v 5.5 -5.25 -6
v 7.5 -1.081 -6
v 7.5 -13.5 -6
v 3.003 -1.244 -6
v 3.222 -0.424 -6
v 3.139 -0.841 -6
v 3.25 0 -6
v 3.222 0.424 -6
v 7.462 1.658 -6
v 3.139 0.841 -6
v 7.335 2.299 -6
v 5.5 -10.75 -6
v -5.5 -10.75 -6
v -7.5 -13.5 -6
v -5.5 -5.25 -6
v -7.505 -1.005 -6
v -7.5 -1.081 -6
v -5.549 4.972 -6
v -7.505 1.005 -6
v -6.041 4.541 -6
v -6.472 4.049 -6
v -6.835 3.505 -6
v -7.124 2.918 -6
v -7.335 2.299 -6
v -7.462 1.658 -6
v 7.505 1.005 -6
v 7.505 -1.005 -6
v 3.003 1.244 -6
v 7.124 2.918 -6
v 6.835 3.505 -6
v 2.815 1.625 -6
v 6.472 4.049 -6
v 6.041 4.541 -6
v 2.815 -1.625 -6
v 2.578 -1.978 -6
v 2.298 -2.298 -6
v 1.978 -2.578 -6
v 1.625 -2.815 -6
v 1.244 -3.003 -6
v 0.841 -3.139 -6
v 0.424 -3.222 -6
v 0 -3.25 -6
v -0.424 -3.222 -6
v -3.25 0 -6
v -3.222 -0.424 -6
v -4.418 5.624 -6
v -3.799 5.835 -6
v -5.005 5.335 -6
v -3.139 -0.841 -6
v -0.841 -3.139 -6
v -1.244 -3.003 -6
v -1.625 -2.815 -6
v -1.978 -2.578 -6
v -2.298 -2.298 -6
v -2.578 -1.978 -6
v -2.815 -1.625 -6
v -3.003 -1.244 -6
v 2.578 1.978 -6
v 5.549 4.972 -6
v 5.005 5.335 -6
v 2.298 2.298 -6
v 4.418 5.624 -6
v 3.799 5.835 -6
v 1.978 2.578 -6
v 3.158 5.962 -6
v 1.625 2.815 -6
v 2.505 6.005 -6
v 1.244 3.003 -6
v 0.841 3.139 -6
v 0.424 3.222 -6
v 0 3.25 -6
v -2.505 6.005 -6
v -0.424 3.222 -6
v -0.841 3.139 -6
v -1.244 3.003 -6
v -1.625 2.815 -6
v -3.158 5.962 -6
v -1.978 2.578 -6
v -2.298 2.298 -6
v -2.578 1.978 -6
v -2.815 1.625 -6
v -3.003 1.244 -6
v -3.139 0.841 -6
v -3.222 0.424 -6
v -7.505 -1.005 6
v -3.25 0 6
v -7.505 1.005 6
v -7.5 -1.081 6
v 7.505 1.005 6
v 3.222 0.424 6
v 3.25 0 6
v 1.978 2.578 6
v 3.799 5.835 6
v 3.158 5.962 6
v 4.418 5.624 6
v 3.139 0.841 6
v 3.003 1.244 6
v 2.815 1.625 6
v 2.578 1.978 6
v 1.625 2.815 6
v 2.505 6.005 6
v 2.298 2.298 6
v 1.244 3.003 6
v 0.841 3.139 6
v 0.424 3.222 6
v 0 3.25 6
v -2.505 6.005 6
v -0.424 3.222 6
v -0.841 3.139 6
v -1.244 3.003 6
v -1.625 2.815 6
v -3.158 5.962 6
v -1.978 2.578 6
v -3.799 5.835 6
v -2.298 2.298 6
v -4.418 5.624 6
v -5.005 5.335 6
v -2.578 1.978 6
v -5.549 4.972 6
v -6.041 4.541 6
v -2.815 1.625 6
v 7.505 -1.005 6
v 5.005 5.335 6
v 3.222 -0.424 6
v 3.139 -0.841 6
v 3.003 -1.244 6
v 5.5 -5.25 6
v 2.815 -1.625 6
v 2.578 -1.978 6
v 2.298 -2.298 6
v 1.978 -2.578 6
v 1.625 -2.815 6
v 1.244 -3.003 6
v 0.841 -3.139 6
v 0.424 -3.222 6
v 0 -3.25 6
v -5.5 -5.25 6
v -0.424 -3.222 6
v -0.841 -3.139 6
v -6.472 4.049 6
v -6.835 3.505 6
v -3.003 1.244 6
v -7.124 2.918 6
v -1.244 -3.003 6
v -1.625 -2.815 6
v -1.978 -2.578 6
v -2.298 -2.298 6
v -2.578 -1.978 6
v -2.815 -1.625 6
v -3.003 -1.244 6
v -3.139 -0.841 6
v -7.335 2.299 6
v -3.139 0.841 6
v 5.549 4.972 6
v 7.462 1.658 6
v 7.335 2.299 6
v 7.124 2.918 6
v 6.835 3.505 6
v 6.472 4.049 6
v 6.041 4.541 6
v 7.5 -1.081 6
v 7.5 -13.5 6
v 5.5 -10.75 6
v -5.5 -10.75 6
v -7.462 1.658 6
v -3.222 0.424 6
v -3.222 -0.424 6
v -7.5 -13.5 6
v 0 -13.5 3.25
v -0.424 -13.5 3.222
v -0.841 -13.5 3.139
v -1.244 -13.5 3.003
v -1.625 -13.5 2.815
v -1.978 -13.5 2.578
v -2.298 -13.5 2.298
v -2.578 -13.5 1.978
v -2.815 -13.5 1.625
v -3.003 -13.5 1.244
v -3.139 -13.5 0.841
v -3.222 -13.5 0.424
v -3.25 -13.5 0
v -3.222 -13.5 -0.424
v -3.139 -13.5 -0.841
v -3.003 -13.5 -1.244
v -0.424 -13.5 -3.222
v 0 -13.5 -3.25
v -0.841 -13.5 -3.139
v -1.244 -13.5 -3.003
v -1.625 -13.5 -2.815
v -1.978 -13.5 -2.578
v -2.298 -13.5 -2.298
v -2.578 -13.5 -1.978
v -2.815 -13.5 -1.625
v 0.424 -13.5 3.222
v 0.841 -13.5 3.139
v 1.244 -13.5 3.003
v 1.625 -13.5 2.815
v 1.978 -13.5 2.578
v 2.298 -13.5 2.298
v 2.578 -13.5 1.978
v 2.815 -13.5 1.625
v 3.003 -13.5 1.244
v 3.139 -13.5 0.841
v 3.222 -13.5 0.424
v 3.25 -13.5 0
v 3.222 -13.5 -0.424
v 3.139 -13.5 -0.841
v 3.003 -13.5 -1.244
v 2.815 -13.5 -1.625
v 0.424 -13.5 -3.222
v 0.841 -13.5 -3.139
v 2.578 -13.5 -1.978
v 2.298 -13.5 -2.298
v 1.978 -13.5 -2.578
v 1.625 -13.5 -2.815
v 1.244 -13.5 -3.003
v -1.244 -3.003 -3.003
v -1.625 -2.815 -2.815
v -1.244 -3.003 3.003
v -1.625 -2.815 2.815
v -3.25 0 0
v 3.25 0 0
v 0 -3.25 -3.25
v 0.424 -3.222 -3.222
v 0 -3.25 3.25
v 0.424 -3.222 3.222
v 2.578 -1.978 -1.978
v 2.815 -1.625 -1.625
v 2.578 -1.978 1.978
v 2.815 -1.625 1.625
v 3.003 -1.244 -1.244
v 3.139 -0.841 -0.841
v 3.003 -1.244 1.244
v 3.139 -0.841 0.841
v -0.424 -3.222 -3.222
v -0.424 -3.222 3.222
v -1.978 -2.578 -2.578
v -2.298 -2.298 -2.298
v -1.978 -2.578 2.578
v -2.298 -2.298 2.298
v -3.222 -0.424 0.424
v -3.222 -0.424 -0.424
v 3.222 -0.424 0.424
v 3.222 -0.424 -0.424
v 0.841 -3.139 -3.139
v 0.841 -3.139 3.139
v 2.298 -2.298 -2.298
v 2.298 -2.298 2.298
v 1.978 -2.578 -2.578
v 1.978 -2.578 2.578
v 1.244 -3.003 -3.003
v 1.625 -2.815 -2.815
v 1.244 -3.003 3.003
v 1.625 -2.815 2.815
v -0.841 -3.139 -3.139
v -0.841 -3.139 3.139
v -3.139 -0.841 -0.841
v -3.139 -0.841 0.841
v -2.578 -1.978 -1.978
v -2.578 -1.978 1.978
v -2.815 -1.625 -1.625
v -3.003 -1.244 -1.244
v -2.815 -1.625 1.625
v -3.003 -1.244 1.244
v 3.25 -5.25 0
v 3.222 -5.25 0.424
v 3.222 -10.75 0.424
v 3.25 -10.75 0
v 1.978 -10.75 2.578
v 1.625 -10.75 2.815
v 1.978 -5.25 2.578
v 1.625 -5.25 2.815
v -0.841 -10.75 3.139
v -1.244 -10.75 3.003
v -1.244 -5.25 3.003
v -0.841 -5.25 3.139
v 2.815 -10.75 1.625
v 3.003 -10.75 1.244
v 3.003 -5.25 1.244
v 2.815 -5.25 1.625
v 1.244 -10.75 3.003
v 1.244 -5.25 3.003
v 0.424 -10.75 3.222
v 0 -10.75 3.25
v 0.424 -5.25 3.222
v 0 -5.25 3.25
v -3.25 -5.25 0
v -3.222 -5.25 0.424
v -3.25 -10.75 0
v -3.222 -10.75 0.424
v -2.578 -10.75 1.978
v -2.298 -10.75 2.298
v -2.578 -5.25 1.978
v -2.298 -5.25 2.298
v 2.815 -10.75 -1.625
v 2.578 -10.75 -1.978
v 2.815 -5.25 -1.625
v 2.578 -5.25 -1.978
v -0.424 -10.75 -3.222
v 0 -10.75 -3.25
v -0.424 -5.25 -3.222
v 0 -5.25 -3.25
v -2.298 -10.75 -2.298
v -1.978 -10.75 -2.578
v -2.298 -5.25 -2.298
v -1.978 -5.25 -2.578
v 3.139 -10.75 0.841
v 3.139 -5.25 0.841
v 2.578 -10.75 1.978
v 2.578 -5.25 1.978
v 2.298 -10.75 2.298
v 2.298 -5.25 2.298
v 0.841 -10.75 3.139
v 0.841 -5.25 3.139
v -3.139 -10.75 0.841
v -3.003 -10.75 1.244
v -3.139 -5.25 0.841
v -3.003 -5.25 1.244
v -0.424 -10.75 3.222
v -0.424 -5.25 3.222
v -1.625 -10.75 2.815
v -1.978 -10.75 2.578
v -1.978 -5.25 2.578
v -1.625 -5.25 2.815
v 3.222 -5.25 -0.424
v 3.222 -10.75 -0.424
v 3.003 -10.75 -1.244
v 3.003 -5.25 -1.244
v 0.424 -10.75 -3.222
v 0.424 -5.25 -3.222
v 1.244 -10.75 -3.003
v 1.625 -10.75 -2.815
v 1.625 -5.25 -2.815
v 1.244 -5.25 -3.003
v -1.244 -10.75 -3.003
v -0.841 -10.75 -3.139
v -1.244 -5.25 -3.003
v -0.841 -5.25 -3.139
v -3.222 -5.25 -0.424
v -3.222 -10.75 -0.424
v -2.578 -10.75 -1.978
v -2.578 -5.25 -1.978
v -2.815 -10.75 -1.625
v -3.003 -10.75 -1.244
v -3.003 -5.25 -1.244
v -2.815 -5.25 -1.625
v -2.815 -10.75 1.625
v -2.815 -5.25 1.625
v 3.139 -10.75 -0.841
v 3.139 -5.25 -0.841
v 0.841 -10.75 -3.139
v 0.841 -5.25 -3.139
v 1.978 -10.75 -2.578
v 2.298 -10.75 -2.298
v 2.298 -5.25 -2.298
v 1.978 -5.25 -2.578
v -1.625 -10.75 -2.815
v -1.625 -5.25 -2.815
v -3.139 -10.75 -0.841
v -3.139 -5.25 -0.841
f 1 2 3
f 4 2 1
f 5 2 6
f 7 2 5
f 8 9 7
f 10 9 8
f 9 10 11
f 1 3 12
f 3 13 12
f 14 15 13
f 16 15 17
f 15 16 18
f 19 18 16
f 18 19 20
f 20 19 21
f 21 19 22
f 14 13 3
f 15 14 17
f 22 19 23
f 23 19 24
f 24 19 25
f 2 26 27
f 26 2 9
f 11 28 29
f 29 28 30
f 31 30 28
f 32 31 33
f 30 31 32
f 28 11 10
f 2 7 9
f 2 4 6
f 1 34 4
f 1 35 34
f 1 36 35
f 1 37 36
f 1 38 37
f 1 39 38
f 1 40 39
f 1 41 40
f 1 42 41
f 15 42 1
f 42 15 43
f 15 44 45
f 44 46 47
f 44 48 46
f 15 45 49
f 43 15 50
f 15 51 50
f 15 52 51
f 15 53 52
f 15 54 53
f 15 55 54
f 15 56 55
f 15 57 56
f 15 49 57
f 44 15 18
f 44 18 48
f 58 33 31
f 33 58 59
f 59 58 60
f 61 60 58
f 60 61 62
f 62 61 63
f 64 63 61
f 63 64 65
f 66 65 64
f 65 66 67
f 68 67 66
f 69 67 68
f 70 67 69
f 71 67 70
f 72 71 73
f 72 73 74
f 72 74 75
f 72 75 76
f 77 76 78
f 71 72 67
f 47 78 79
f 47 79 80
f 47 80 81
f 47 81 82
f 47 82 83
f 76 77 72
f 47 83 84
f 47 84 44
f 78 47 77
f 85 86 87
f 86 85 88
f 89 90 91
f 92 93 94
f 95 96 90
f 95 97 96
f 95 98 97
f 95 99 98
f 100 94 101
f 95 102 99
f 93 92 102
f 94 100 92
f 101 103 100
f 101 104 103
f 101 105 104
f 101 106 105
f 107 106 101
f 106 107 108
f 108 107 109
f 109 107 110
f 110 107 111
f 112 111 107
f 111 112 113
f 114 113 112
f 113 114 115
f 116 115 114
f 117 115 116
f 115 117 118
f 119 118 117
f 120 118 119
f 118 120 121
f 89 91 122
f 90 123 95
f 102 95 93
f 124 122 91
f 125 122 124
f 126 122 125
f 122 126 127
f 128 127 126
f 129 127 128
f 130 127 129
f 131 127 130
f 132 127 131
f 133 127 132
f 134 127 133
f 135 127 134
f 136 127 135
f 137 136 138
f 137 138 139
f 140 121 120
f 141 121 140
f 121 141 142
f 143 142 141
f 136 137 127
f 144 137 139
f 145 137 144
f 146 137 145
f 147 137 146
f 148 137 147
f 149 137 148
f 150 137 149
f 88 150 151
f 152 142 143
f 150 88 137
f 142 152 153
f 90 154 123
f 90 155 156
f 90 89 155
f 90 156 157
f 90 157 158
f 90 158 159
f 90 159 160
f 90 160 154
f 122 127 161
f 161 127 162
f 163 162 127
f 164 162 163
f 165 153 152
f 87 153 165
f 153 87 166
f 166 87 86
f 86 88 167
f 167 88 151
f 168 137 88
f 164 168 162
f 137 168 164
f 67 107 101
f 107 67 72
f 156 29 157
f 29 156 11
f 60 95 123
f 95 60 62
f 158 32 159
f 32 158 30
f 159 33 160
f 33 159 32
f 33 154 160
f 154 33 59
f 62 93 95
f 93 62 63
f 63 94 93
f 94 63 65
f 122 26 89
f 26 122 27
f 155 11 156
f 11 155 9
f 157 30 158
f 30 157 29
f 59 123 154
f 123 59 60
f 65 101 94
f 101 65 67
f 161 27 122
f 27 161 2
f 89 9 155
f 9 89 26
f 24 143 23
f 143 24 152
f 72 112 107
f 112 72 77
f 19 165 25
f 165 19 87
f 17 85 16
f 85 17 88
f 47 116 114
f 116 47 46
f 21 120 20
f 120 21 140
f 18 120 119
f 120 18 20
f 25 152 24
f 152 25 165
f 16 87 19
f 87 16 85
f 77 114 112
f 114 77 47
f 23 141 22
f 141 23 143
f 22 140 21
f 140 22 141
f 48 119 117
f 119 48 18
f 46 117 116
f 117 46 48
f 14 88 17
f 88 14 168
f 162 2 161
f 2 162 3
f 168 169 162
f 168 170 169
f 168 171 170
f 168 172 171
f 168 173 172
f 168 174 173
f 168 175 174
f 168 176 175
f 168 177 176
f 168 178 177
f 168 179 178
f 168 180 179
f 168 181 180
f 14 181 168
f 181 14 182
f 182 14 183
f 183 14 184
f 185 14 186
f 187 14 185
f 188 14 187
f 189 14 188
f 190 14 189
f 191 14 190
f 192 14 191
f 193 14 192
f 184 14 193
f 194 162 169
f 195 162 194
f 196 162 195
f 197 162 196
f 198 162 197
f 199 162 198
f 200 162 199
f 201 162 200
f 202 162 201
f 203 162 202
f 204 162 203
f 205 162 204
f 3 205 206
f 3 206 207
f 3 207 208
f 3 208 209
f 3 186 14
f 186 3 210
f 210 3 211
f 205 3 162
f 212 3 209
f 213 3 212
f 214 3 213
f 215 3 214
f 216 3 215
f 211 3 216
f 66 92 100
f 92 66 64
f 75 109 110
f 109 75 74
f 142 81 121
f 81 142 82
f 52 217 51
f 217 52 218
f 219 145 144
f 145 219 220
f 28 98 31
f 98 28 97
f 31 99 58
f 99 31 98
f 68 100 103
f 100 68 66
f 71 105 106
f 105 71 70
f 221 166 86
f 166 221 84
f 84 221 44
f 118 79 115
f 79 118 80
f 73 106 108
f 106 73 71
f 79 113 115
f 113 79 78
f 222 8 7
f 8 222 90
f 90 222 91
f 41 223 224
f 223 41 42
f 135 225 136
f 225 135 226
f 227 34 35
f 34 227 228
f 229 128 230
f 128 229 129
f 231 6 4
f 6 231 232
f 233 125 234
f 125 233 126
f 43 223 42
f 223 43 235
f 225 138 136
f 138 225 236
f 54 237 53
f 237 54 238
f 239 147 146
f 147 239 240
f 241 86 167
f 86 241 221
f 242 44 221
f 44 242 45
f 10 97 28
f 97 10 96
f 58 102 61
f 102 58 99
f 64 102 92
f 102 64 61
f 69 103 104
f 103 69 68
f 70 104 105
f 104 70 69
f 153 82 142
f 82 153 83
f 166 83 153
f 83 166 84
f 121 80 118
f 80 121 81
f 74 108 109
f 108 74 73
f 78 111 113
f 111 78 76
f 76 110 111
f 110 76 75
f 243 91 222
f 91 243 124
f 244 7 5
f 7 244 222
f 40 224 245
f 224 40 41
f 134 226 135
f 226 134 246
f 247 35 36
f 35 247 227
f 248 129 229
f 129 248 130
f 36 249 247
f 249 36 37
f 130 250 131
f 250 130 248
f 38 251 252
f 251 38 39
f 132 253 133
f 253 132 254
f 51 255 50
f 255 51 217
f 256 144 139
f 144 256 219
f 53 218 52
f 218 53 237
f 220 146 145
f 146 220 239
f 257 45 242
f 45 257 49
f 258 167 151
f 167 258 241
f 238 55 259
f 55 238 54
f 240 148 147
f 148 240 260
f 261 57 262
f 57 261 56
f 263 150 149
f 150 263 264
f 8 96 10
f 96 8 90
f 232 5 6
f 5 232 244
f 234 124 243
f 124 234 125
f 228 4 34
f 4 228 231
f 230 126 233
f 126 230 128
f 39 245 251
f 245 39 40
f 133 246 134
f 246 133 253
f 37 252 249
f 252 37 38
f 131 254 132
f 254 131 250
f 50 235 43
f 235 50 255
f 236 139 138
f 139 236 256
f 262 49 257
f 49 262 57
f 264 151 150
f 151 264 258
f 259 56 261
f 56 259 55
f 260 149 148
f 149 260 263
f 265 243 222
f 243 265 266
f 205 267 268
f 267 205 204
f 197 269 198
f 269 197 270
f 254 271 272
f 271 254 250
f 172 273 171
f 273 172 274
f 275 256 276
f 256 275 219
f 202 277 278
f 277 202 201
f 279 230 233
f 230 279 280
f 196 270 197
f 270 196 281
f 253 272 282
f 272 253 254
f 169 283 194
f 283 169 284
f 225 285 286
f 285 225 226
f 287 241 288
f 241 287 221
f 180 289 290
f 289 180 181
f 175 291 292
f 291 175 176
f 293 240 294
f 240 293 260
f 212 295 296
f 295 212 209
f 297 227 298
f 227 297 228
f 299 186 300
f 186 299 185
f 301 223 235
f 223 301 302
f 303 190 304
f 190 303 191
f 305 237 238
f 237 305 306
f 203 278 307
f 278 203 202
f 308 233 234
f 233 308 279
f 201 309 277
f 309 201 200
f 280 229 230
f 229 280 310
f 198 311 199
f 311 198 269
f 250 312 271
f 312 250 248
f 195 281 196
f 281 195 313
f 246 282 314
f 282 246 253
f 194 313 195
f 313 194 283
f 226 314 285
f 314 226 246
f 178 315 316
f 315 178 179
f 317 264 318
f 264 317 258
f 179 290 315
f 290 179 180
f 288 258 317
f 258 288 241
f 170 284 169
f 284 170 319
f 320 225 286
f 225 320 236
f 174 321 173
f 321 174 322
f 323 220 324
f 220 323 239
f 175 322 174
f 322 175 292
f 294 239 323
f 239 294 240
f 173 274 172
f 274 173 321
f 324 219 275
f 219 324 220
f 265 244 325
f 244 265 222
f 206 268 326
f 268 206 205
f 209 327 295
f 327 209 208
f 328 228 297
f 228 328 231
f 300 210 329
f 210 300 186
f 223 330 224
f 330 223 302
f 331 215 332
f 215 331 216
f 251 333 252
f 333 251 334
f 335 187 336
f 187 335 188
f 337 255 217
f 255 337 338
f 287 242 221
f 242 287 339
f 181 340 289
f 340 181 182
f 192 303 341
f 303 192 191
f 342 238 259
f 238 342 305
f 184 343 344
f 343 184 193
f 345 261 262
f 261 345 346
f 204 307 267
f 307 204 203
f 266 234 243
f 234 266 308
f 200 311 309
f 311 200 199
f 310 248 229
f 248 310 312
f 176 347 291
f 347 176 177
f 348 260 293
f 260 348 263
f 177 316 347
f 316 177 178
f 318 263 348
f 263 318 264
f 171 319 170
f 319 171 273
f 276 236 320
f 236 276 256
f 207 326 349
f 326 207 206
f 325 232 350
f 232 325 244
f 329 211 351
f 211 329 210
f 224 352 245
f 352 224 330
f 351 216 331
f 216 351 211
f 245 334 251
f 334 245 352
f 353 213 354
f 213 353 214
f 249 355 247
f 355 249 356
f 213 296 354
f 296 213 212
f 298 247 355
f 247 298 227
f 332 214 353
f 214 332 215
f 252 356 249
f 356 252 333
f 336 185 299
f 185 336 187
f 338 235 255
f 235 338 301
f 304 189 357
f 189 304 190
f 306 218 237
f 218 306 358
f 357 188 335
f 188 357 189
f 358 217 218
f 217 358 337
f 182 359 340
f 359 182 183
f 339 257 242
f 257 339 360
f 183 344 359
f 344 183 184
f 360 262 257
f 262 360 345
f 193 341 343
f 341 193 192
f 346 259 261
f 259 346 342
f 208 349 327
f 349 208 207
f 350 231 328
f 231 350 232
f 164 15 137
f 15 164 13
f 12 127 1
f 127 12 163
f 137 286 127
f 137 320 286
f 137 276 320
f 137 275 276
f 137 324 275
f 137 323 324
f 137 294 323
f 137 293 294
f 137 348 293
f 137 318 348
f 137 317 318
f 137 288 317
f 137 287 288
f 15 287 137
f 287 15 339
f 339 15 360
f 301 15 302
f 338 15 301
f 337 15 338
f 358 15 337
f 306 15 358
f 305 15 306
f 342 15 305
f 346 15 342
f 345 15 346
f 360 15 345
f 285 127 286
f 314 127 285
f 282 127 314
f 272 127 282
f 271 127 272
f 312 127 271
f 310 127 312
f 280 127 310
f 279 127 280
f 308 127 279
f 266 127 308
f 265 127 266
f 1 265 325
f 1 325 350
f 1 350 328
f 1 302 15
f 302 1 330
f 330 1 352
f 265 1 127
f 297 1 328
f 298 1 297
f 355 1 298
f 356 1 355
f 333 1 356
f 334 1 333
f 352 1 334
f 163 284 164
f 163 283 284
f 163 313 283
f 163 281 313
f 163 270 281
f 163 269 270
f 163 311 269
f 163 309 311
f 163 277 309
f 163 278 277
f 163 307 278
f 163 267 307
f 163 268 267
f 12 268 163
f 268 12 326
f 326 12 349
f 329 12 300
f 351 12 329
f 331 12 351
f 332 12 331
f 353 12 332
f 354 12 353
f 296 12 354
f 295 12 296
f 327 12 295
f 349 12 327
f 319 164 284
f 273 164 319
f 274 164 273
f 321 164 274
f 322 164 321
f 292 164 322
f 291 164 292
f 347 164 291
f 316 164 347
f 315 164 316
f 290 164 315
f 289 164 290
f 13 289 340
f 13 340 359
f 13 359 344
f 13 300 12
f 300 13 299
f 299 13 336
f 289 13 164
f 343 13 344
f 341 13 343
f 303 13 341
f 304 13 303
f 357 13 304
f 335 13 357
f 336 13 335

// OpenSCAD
$fn = 48;


difference() {
	union() {
		color(alpha = 1.0000000000, c = "Gold") {
			translate(v = [0, 0, 6.0000000000]) {
				rotate(a = [0, 0, 0]) {
					translate(v = [0, 0, -12]) {
						linear_extrude(height = 12) {
							offset(r = 5) {
								square(center = true, size = [2.0100000000, 2.0100000000]);
							}
						}
					}
				}
			}
		}
		color(alpha = 1.0000000000, c = "Gold") {
			translate(v = [1.5000000000, 0, 6.0000000000]) {
				rotate(a = [0, 0, 0]) {
					translate(v = [0, 0, -12]) {
						linear_extrude(height = 12) {
							offset(r = 5) {
								square(center = true, size = [2.0100000000, 2.0100000000]);
							}
						}
					}
				}
			}
		}
		color(alpha = 1.0000000000, c = "Gold") {
			translate(v = [-1.5000000000, 0, 6.0000000000]) {
				rotate(a = [0, 0, 0]) {
					translate(v = [0, 0, -12]) {
						linear_extrude(height = 12) {
							offset(r = 5) {
								square(center = true, size = [2.0100000000, 2.0100000000]);
							}
						}
					}
				}
			}
		}
		color(alpha = 1.0000000000, c = "Gold") {
			translate(v = [0, -6.7500000000, 6.0000000000]) {
				rotate(a = [0, 0, 0]) {
					translate(v = [0, 0, -6.0000000000]) {
						cube(center = true, size = [15, 13.5000000000, 12]);
					}
				}
			}
		}
	}
	union() {
		color(alpha = 1.0000000000, c = "Gold") {
			translate(v = [0.0000000000, 0.0000000000, 0]) {
				rotate(a = [0, 0, 0]) {
					translate(v = [0, 0, -250]) {
						cylinder(h = 500, r = 3.2500000000);
					}
				}
			}
		}
		color(alpha = 1.0000000000, c = "Gold") {
			translate(v = [0.0000000000, 0.0000000000, 0]) {
				rotate(a = [90, 0, 0]) {
					cylinder(h = 13.5000000000, r = 3.2500000000);
				}
			}
		}
		color(alpha = 1.0000000000, c = "Gold") {
			translate(v = [0.0000000000, -8, 6.0000000000]) {
				rotate(a = [0, 0, 0]) {
					translate(v = [0, 0, -6.0000000000]) {
						cube(center = true, size = [11, 5.5000000000, 12]);
					}
				}
			}
		}
	}
}
